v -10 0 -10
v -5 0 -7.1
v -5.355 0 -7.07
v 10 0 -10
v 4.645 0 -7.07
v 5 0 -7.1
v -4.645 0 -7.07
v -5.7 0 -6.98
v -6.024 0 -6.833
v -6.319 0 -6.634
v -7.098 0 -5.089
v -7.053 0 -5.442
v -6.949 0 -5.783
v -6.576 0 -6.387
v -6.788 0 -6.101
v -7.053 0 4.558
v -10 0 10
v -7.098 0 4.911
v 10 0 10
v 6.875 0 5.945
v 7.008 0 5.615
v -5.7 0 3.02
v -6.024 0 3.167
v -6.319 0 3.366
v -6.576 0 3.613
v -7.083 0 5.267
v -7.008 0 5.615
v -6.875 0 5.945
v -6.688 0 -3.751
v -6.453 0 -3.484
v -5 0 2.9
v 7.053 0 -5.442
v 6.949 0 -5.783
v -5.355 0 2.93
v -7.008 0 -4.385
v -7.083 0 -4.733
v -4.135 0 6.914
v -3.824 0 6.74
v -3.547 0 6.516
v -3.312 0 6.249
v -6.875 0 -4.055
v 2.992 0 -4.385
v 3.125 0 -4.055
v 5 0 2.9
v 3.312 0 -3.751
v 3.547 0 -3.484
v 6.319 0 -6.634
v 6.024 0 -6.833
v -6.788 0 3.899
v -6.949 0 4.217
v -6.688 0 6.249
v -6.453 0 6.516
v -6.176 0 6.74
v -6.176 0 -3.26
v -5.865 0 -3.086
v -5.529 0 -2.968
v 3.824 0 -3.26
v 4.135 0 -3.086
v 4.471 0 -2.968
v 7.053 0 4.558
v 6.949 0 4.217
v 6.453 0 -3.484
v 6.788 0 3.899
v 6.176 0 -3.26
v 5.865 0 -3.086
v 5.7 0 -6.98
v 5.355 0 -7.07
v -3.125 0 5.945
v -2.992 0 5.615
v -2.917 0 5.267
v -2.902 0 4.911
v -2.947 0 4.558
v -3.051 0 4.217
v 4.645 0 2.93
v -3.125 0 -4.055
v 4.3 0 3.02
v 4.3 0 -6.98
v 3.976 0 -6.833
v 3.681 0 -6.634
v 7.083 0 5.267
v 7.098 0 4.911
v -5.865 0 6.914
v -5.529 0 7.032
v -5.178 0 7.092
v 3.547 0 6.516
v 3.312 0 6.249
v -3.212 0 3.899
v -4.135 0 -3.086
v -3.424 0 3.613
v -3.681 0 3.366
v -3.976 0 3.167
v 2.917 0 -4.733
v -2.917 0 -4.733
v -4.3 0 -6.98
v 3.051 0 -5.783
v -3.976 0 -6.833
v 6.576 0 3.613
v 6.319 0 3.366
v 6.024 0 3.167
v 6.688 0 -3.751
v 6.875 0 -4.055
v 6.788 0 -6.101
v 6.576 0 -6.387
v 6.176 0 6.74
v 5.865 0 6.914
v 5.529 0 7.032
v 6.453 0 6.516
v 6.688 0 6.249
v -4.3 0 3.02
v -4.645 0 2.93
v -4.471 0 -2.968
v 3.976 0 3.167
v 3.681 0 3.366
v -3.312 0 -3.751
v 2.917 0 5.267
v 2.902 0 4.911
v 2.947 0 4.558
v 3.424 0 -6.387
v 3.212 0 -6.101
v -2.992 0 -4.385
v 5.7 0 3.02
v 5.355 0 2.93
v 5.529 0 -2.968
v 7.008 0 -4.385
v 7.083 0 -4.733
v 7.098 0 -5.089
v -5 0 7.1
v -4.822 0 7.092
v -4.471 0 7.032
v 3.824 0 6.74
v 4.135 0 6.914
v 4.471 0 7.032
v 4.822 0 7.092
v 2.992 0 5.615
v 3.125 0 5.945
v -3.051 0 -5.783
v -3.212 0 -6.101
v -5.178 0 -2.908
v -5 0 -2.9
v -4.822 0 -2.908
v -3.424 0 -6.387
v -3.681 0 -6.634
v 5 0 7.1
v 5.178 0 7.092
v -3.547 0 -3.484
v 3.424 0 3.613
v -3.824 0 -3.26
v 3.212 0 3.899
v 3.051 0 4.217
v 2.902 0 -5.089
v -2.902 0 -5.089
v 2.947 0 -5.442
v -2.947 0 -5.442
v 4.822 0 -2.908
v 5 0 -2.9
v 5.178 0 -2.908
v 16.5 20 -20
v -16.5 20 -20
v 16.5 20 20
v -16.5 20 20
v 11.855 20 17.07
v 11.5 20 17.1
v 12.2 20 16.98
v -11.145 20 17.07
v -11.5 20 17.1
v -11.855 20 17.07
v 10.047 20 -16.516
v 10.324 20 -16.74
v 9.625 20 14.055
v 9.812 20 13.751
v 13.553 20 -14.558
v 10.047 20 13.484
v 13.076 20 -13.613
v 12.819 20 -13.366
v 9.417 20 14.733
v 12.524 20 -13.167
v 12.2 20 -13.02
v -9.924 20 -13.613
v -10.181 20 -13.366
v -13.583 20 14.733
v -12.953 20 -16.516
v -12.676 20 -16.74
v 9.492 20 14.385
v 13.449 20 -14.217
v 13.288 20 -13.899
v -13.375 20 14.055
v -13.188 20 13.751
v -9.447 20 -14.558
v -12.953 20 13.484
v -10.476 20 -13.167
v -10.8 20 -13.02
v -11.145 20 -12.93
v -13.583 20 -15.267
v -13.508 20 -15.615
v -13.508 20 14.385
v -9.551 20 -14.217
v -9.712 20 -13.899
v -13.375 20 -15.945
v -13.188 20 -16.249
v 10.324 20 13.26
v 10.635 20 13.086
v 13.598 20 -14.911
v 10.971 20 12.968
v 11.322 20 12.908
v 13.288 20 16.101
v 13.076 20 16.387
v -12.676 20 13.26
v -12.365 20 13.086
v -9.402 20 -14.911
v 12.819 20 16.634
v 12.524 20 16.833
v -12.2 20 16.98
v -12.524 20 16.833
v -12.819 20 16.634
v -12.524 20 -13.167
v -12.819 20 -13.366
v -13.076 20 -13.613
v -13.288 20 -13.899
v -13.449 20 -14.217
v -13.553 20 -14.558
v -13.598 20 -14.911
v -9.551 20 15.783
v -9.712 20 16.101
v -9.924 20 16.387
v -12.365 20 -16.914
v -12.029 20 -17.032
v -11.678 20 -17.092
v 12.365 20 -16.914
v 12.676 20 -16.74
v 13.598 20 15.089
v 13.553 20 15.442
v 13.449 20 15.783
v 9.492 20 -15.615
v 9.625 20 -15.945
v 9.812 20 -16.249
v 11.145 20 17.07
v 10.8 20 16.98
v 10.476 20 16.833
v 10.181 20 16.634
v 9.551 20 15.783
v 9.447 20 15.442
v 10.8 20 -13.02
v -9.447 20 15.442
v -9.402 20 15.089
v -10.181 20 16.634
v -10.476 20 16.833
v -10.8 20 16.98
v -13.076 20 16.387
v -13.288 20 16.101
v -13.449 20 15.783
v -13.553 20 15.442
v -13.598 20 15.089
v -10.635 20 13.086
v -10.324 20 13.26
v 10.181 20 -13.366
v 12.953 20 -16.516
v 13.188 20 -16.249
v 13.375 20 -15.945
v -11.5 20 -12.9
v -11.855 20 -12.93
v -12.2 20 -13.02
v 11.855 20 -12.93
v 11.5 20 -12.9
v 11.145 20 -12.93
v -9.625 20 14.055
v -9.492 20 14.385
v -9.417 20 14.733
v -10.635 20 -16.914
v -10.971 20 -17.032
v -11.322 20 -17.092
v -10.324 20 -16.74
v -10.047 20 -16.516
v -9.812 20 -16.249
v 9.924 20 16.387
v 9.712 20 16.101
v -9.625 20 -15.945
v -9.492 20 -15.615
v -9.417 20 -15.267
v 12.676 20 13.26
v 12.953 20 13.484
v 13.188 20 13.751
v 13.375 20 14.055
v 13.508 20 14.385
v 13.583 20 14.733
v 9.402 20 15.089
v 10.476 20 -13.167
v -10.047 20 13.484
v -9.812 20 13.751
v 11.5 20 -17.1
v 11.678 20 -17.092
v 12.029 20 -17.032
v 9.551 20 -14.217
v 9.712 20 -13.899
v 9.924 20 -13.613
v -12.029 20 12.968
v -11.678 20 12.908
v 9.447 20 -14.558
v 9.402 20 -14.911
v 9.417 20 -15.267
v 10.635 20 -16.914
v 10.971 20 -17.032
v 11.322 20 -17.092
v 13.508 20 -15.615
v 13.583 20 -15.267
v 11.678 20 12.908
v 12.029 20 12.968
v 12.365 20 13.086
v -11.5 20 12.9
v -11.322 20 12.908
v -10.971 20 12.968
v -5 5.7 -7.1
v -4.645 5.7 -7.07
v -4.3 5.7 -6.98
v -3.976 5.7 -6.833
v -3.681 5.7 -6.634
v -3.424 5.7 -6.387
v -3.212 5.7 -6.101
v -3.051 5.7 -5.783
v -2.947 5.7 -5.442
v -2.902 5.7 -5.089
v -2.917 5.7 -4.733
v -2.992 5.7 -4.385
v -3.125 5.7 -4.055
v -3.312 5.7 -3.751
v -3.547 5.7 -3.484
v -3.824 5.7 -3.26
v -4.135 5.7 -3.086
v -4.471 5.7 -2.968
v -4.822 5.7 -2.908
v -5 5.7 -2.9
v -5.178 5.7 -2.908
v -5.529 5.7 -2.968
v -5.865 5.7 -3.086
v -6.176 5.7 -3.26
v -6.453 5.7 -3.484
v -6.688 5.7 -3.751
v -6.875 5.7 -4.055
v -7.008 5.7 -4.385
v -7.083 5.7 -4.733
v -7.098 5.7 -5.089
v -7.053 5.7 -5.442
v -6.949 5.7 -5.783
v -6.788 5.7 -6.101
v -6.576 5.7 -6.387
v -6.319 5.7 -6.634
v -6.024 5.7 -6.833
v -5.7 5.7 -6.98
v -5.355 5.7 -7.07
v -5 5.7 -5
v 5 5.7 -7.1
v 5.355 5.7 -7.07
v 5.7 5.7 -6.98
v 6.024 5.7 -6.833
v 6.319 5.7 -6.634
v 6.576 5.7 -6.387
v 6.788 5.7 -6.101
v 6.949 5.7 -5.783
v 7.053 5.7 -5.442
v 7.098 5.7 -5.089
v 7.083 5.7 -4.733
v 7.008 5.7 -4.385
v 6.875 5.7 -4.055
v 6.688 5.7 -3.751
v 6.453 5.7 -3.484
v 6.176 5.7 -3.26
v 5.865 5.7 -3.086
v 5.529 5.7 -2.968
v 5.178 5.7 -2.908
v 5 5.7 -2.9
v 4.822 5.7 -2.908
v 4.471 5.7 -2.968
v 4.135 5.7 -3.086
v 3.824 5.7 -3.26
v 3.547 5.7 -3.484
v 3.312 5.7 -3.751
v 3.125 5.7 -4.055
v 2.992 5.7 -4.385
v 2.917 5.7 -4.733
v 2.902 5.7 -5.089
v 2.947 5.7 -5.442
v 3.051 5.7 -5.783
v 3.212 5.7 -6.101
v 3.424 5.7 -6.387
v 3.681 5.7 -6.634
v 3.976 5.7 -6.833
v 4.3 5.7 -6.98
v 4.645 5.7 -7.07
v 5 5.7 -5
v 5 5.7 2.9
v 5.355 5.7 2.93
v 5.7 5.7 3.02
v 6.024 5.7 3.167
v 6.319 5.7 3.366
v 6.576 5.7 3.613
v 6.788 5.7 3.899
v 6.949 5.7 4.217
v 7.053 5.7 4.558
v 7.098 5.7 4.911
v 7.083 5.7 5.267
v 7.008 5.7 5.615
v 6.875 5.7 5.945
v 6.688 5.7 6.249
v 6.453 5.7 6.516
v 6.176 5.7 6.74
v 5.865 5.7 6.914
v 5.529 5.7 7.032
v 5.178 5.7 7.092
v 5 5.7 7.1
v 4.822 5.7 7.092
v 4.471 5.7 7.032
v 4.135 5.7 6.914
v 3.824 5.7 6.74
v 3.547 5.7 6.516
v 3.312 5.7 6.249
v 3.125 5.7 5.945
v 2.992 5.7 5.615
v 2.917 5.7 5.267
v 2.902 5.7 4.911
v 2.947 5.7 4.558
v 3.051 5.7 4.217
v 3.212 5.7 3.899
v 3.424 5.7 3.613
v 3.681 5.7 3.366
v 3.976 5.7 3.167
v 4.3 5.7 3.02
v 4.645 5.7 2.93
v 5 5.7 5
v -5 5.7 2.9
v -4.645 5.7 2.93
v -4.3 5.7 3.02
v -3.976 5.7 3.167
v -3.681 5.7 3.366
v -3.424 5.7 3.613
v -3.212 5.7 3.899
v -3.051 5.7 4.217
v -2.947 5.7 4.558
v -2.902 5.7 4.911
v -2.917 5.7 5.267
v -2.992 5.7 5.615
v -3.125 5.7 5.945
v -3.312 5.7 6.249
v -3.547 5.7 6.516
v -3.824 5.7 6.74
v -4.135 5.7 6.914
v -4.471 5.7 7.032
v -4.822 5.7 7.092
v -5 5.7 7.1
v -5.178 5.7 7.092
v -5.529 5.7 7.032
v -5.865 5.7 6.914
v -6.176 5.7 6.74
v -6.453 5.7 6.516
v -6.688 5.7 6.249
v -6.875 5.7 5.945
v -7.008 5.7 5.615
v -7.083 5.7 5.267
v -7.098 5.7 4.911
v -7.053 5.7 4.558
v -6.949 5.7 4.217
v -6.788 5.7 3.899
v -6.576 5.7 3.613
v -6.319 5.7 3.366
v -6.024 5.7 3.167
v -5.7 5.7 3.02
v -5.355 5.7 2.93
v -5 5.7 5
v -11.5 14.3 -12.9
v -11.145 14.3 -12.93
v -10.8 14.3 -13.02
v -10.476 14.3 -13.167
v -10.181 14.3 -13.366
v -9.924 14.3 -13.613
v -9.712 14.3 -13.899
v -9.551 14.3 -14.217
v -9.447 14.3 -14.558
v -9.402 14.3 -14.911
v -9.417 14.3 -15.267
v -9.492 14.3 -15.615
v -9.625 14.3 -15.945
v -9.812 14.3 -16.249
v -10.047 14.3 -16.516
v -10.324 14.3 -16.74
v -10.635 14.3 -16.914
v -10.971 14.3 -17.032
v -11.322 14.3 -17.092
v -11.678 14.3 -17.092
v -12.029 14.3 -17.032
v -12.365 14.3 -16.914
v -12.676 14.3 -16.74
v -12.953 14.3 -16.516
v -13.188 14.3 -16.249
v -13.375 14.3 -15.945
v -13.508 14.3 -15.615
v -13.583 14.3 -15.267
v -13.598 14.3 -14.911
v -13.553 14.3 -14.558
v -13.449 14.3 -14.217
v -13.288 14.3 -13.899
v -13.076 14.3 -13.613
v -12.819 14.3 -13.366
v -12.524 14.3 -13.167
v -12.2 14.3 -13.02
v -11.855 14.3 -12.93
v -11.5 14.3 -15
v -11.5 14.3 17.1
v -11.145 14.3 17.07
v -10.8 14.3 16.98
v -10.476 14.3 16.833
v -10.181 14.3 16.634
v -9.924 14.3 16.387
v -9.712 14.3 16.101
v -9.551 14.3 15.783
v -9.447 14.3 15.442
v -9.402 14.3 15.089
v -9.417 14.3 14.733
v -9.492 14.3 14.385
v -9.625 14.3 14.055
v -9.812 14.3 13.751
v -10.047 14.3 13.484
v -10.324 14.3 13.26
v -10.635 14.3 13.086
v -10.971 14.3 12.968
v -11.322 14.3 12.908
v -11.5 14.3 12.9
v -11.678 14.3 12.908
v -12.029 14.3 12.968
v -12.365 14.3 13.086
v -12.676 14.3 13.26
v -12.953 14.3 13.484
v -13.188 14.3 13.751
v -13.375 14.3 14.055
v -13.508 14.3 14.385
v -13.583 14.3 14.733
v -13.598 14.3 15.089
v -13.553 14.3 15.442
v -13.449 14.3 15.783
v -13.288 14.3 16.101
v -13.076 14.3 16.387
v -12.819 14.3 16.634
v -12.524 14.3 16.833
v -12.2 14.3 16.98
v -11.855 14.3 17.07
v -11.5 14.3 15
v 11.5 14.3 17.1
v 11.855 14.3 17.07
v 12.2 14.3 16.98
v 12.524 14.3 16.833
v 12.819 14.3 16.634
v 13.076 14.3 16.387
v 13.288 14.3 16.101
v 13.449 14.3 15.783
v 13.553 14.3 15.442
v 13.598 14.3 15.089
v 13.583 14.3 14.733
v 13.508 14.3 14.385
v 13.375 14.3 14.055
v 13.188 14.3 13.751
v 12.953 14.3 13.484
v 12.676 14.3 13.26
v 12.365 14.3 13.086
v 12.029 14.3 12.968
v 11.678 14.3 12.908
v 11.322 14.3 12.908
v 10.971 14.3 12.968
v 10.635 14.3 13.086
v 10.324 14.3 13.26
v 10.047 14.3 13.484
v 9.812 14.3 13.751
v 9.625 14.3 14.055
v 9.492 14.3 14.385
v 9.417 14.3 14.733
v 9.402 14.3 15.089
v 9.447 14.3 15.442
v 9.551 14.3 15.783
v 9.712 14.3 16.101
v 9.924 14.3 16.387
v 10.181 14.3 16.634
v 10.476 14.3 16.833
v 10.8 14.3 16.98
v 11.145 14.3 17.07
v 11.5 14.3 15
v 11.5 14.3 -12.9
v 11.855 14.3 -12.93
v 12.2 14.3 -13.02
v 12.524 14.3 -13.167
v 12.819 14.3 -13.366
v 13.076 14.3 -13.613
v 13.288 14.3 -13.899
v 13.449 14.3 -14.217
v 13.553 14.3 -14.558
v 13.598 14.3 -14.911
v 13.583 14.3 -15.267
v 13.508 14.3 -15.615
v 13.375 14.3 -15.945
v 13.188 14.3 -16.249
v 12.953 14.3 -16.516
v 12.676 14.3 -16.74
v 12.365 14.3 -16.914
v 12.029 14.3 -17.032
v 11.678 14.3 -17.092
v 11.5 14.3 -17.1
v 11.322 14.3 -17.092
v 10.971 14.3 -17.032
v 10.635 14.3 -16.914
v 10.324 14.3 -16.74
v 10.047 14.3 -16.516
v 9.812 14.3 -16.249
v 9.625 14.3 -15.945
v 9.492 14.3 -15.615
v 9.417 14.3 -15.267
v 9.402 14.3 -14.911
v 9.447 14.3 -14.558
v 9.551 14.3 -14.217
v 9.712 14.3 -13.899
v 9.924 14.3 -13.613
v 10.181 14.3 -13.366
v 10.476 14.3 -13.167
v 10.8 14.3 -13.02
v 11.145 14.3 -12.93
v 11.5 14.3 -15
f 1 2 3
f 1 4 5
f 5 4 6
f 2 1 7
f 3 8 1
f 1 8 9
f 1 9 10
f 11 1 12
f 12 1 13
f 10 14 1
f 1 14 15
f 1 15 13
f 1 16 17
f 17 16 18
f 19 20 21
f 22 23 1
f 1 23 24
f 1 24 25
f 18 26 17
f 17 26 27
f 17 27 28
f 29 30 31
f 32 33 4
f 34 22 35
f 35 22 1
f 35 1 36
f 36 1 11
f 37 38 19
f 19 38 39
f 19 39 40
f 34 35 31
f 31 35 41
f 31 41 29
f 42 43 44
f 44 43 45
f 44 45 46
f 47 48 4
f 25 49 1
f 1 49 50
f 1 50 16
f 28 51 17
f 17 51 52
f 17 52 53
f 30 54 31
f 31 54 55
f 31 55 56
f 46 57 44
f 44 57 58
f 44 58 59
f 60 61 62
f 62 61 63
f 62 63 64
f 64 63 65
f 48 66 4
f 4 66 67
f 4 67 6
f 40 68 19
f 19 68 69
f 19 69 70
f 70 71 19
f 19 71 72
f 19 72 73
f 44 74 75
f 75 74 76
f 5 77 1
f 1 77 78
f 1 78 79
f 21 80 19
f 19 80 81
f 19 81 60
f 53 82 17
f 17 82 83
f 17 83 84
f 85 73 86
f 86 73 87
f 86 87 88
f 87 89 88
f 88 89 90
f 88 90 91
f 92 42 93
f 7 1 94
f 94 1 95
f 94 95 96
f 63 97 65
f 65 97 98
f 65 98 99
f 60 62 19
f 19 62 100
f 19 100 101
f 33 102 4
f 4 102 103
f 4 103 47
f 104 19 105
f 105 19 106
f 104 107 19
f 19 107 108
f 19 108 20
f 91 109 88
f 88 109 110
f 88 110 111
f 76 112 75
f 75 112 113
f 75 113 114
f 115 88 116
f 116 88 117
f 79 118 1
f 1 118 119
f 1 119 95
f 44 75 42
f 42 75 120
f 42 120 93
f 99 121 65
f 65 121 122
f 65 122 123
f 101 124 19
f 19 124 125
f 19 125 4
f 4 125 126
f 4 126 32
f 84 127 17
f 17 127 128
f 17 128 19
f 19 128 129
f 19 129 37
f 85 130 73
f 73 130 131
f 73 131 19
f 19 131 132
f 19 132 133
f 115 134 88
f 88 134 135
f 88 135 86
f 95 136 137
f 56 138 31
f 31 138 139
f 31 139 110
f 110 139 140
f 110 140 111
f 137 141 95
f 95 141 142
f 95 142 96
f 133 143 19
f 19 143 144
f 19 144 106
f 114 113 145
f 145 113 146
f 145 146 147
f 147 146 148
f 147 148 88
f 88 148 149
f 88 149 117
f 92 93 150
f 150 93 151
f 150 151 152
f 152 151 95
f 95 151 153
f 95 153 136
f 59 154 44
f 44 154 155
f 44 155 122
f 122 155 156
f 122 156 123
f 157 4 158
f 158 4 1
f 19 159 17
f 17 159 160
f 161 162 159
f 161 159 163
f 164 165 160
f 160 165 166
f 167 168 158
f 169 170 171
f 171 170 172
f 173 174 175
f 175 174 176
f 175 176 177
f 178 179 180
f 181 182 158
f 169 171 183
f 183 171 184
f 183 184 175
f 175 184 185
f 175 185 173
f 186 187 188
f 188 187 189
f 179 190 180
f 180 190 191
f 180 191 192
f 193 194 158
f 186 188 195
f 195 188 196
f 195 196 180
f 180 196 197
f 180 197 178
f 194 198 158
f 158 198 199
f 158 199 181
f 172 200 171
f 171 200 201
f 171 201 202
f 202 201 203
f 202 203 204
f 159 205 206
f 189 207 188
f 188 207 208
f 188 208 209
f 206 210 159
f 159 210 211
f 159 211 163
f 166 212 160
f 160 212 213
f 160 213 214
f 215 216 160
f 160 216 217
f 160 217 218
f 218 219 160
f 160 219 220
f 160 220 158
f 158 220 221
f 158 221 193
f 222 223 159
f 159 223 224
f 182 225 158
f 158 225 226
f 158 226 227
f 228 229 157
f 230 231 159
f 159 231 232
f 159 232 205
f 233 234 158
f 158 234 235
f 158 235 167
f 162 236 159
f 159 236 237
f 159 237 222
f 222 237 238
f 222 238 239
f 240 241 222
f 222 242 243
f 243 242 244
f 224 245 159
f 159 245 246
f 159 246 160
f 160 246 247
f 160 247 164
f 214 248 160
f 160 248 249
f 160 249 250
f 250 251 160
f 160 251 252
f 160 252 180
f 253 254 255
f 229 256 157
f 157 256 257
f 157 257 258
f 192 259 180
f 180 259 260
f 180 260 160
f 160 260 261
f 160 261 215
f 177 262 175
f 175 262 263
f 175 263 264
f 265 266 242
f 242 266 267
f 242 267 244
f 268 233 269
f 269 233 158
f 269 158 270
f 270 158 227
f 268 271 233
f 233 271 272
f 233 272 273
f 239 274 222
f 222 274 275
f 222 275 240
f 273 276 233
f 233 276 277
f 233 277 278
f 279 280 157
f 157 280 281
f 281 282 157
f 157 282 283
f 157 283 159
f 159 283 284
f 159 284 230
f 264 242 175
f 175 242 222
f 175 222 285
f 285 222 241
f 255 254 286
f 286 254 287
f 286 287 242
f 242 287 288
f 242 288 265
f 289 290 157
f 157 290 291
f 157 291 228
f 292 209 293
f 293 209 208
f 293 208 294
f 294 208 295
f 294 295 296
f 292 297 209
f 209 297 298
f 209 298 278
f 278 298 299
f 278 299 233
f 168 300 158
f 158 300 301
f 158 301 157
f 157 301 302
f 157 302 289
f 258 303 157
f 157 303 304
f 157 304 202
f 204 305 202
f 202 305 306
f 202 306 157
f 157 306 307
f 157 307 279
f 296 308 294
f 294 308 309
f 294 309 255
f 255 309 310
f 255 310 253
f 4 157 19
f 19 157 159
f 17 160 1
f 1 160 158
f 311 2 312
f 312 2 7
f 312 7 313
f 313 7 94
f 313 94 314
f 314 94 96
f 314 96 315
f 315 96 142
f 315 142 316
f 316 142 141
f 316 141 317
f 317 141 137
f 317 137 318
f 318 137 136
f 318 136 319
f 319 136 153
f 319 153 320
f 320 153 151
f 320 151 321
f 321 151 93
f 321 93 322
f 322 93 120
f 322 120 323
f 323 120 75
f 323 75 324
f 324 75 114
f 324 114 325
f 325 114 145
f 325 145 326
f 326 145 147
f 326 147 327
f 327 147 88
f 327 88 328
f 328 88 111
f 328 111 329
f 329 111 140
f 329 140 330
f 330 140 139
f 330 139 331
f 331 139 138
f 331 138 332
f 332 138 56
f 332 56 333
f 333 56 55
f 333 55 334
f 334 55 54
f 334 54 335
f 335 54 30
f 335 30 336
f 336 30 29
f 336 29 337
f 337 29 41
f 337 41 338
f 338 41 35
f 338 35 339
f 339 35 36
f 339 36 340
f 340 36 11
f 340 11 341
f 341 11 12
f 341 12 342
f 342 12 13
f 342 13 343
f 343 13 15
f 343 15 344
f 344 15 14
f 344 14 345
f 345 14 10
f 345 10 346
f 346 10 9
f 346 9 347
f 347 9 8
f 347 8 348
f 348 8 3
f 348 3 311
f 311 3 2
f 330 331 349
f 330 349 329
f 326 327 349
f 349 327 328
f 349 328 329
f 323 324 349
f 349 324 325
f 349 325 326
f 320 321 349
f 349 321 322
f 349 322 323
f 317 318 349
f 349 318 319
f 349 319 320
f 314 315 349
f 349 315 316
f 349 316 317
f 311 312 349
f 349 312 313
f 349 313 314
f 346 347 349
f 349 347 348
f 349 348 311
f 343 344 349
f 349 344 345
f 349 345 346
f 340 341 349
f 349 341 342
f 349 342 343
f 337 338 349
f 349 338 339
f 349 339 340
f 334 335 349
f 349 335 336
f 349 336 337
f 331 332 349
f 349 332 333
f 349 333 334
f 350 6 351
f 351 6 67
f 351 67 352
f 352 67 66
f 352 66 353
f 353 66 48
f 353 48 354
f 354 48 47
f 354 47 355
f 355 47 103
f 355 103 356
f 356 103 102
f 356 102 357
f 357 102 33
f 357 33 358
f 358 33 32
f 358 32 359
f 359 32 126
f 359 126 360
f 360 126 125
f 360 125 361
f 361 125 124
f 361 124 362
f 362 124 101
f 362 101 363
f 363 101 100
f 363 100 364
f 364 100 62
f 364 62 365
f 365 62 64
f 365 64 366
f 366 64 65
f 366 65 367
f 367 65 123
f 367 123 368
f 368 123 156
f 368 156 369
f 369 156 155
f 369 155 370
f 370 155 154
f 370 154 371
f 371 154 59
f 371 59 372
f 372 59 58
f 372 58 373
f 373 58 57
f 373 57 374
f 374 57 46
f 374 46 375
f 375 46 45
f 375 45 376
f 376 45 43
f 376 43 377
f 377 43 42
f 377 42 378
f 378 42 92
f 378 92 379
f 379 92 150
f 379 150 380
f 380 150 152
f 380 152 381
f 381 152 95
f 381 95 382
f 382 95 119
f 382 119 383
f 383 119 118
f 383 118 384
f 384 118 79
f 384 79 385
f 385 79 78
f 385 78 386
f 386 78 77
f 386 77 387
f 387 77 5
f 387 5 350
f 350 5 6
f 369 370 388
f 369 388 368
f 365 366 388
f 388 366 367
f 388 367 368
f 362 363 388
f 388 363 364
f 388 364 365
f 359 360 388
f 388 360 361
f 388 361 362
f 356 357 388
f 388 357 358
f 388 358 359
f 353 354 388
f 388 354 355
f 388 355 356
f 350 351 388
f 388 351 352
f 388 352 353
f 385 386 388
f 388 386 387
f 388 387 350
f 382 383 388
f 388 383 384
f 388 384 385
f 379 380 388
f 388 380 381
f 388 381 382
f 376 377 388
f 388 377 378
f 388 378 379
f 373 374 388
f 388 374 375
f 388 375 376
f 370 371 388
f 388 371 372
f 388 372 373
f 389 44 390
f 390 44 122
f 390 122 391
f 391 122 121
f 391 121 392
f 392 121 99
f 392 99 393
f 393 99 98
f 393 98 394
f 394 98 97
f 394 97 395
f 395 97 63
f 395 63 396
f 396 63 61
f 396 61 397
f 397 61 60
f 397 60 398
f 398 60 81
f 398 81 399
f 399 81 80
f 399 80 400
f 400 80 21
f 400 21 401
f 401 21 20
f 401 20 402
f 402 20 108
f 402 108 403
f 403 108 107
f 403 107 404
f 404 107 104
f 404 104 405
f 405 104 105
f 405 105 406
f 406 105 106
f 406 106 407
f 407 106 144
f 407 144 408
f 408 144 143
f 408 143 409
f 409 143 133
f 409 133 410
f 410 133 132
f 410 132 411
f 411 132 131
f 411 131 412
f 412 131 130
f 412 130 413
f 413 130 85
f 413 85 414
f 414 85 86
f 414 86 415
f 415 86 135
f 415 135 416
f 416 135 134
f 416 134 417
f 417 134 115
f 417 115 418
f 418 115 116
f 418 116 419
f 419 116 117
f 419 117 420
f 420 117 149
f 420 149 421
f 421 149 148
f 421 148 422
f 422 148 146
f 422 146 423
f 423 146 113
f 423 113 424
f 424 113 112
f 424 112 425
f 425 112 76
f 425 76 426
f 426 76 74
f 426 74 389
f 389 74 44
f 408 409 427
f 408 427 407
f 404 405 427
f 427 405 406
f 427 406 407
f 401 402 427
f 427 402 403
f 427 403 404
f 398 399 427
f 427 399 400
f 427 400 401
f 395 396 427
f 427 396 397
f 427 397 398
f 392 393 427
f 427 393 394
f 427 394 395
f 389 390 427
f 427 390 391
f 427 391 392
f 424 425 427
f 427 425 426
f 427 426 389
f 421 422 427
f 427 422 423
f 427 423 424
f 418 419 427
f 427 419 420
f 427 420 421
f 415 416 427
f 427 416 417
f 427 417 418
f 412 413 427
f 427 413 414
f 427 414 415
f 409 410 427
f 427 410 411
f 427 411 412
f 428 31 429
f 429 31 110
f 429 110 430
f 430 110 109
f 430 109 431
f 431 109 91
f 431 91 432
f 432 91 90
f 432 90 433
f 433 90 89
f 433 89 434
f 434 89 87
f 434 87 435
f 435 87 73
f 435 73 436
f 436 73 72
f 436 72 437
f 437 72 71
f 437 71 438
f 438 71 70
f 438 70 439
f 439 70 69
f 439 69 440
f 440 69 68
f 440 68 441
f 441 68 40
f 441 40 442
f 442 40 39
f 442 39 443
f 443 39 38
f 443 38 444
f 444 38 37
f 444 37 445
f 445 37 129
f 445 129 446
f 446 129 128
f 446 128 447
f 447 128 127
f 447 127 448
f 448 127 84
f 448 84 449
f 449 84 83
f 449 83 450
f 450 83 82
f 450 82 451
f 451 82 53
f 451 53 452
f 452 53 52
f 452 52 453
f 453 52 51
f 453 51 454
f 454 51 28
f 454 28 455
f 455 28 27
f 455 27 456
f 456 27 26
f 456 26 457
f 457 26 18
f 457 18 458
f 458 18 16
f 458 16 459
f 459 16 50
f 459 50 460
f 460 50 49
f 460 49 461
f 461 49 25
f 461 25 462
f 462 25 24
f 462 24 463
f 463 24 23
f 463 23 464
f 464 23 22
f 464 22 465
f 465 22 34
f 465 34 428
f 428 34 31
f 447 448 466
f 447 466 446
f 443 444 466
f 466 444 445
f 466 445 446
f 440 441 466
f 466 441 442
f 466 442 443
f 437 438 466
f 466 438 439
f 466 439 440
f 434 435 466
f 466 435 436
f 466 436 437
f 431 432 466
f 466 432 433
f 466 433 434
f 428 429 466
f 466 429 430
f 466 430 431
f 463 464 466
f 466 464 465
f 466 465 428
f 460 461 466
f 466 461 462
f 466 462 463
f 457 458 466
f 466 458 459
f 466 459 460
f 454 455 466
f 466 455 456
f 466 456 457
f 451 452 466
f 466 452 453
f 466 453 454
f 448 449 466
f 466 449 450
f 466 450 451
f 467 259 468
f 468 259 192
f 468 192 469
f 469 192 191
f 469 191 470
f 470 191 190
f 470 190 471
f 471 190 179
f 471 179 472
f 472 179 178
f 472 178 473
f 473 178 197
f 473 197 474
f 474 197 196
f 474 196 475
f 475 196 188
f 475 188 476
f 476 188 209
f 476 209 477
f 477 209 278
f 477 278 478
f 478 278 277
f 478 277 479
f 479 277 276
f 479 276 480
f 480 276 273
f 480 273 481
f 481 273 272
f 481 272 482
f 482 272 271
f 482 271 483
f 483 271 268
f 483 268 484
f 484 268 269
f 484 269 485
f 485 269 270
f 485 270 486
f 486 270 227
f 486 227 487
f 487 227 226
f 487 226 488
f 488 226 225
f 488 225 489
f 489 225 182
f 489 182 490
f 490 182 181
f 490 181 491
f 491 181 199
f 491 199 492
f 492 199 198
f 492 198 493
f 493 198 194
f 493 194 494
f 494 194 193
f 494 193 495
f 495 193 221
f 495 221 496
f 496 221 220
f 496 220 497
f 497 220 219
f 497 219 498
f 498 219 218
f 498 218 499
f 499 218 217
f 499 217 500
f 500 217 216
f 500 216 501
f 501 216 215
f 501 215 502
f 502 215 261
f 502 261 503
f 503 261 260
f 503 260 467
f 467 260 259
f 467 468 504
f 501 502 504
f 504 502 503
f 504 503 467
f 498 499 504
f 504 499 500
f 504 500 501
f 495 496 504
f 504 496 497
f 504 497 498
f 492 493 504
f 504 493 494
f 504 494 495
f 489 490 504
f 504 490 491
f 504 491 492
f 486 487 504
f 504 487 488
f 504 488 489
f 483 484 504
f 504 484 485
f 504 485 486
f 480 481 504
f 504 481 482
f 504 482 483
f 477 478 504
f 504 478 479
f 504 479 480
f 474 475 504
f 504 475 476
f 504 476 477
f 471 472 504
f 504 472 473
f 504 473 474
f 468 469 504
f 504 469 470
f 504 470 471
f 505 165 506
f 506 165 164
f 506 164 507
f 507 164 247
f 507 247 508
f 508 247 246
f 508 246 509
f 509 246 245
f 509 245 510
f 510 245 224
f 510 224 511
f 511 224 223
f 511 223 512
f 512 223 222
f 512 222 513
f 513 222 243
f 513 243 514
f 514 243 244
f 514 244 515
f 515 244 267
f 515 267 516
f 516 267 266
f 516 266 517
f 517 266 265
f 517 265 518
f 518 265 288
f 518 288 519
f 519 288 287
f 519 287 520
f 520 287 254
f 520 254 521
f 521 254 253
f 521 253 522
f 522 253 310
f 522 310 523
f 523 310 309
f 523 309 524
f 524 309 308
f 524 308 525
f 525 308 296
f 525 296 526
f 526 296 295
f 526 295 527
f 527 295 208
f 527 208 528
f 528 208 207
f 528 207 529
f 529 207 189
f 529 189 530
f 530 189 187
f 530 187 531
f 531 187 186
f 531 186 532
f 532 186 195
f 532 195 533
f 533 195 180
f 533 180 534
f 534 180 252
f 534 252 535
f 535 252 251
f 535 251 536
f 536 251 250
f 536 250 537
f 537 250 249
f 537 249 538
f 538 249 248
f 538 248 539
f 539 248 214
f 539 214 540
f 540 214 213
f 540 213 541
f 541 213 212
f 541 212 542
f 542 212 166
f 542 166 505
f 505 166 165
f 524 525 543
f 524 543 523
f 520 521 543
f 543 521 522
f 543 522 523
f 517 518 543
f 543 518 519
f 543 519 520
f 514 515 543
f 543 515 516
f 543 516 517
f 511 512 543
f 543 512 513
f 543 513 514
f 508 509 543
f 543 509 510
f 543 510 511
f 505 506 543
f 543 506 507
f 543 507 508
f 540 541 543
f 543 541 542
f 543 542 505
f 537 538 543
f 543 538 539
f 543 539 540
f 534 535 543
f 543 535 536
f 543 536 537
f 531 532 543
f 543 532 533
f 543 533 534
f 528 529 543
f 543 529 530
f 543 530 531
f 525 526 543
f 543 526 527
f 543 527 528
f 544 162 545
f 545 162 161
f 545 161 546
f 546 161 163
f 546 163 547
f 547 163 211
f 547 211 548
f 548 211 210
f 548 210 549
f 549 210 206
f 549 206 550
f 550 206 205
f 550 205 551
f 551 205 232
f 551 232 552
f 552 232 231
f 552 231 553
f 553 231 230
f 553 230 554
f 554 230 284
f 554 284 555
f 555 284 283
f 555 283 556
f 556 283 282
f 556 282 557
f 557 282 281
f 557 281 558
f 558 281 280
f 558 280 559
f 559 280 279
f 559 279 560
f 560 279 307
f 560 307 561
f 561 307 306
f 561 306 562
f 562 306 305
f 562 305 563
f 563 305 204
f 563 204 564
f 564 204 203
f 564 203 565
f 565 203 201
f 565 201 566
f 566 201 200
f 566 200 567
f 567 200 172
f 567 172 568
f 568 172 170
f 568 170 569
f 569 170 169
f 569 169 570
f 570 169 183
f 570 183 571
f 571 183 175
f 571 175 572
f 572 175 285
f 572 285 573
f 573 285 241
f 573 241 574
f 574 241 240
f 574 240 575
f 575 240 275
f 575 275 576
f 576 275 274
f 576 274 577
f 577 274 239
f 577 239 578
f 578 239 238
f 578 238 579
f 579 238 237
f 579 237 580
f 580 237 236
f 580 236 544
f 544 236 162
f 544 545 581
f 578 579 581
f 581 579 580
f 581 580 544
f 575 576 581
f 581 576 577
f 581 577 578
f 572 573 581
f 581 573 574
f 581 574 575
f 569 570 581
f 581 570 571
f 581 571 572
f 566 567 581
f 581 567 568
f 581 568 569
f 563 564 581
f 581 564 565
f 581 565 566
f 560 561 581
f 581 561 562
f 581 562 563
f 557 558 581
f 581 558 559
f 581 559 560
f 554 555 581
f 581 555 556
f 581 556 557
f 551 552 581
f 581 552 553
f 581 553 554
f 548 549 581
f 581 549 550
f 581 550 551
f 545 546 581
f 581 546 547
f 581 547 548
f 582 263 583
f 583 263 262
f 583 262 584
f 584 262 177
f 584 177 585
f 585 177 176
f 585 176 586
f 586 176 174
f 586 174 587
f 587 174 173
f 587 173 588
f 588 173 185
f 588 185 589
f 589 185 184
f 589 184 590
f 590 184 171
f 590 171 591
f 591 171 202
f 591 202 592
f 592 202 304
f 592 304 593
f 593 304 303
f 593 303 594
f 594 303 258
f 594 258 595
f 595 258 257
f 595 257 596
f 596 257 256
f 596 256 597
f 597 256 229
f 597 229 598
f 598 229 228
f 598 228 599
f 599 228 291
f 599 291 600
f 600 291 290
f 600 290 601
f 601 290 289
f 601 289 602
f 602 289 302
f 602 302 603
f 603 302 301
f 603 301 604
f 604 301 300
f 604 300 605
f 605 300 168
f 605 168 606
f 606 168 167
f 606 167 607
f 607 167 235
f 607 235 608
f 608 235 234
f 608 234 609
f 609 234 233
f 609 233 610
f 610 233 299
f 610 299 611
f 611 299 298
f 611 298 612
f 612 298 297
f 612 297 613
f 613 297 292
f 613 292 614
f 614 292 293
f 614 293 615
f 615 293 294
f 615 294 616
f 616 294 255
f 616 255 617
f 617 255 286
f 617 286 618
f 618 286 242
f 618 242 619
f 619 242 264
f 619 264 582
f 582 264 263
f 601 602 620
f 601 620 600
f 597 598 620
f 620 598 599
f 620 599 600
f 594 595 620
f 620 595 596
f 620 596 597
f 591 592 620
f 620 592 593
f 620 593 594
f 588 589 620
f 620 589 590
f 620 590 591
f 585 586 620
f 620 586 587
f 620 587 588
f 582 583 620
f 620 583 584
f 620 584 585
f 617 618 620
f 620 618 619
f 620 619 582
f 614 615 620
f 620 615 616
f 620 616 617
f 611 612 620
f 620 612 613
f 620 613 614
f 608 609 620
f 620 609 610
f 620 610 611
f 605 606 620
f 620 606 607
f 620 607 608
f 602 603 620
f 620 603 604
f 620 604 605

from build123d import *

# Parameters (mm, degrees)
SKETCH2_W           = 16.5
SKETCH2_H           = 40
BOSS_EXTRUDE1_DEPTH = 20
CUT_EXTRUDE1_DEPTH  = 20
SKETCH5_W           = 46.207326837
SKETCH5_H           = 41.881023155
CUT_EXTRUDE2_DEPTH  = 20
SKETCH1_R           = 2.1
CUT_EXTRUDE3_DEPTH  = 5.7
SKETCH7_R           = 2.1
CUT_EXTRUDE4_DEPTH  = 5.7


with BuildPart() as part:
    # Sketch2 → Boss-Extrude1 (new body)
    with BuildSketch(Plane(origin=(0, 20, 0), x_dir=(1, 0, 0), z_dir=(0, 1, 0))):
        with Locations((-8.25, 0)):
            Rectangle(SKETCH2_W, SKETCH2_H)
        with Locations((8.25, 0)):
            Rectangle(SKETCH2_W, SKETCH2_H)
    extrude(amount=-BOSS_EXTRUDE1_DEPTH)

    # Sketch4 → Cut-Extrude1 (cut)
    with BuildSketch(Plane(origin=(9.044657999, -2.93951385, 0), x_dir=(0, 0, 1), z_dir=(-0.9510340687309481, 0.30908607233755875, 0))):
        Polygon((-21.945163579, 1.558302269), (-22.817048797, 25.42042402), (26.491055296, 25.42042402), (24.942749687, 1.558302269), align=None)
    cut_extrude1 = extrude(amount=-CUT_EXTRUDE1_DEPTH, mode=Mode.SUBTRACT)

    # Sketch5 → Cut-Extrude2 (cut)
    with BuildSketch(Plane(origin=(0, -4, -8), x_dir=(1, 0, 0), z_dir=(0, 0.447213595499958, 0.894427190999916))):
        with Locations((1.743983375, 9.495933816)):
            Rectangle(SKETCH5_W, SKETCH5_H)
    cut_extrude2 = extrude(amount=-CUT_EXTRUDE2_DEPTH, mode=Mode.SUBTRACT)

    # Mirror1: Cut-Extrude2 across plane
    add(cut_extrude2.mirror(Plane.XY), mode=Mode.SUBTRACT)

    # Mirror2: Cut-Extrude1 across plane
    add(cut_extrude1.mirror(Plane(origin=(0, 0, 0), x_dir=(0, 0, 1), z_dir=(1, 0, 0))), mode=Mode.SUBTRACT)

    # Sketch1 → Cut-Extrude3 (cut)
    with BuildSketch(Plane(origin=(0, 0, 0), x_dir=(1, 0, 0), z_dir=(0, 1, 0))):
        with Locations(Location((-5, 5, 0), (0, 0, 270))):
            Circle(SKETCH1_R)
        with Locations(Location((5, 5, 0), (0, 0, 270))):
            Circle(SKETCH1_R)
        with Locations(Location((5, -5, 0), (0, 0, 270))):
            Circle(SKETCH1_R)
        with Locations(Location((-5, -5, 0), (0, 0, 270))):
            Circle(SKETCH1_R)
    extrude(amount=CUT_EXTRUDE3_DEPTH, mode=Mode.SUBTRACT)

    # Sketch7 → Cut-Extrude4 (cut)
    with BuildSketch(Plane(origin=(0, 20, 0), x_dir=(1, 0, 0), z_dir=(0, 1, 0))):
        with Locations(Location((-11.5, 15, 0), (0, 0, 270))):
            Circle(SKETCH7_R)
        with Locations(Location((-11.5, -15, 0), (0, 0, 90))):
            Circle(SKETCH7_R)
        with Locations(Location((11.5, -15, 0), (0, 0, 270))):
            Circle(SKETCH7_R)
        with Locations(Location((11.5, 15, 0), (0, 0, 90))):
            Circle(SKETCH7_R)
    extrude(amount=-CUT_EXTRUDE4_DEPTH, mode=Mode.SUBTRACT)


solid = part.part
